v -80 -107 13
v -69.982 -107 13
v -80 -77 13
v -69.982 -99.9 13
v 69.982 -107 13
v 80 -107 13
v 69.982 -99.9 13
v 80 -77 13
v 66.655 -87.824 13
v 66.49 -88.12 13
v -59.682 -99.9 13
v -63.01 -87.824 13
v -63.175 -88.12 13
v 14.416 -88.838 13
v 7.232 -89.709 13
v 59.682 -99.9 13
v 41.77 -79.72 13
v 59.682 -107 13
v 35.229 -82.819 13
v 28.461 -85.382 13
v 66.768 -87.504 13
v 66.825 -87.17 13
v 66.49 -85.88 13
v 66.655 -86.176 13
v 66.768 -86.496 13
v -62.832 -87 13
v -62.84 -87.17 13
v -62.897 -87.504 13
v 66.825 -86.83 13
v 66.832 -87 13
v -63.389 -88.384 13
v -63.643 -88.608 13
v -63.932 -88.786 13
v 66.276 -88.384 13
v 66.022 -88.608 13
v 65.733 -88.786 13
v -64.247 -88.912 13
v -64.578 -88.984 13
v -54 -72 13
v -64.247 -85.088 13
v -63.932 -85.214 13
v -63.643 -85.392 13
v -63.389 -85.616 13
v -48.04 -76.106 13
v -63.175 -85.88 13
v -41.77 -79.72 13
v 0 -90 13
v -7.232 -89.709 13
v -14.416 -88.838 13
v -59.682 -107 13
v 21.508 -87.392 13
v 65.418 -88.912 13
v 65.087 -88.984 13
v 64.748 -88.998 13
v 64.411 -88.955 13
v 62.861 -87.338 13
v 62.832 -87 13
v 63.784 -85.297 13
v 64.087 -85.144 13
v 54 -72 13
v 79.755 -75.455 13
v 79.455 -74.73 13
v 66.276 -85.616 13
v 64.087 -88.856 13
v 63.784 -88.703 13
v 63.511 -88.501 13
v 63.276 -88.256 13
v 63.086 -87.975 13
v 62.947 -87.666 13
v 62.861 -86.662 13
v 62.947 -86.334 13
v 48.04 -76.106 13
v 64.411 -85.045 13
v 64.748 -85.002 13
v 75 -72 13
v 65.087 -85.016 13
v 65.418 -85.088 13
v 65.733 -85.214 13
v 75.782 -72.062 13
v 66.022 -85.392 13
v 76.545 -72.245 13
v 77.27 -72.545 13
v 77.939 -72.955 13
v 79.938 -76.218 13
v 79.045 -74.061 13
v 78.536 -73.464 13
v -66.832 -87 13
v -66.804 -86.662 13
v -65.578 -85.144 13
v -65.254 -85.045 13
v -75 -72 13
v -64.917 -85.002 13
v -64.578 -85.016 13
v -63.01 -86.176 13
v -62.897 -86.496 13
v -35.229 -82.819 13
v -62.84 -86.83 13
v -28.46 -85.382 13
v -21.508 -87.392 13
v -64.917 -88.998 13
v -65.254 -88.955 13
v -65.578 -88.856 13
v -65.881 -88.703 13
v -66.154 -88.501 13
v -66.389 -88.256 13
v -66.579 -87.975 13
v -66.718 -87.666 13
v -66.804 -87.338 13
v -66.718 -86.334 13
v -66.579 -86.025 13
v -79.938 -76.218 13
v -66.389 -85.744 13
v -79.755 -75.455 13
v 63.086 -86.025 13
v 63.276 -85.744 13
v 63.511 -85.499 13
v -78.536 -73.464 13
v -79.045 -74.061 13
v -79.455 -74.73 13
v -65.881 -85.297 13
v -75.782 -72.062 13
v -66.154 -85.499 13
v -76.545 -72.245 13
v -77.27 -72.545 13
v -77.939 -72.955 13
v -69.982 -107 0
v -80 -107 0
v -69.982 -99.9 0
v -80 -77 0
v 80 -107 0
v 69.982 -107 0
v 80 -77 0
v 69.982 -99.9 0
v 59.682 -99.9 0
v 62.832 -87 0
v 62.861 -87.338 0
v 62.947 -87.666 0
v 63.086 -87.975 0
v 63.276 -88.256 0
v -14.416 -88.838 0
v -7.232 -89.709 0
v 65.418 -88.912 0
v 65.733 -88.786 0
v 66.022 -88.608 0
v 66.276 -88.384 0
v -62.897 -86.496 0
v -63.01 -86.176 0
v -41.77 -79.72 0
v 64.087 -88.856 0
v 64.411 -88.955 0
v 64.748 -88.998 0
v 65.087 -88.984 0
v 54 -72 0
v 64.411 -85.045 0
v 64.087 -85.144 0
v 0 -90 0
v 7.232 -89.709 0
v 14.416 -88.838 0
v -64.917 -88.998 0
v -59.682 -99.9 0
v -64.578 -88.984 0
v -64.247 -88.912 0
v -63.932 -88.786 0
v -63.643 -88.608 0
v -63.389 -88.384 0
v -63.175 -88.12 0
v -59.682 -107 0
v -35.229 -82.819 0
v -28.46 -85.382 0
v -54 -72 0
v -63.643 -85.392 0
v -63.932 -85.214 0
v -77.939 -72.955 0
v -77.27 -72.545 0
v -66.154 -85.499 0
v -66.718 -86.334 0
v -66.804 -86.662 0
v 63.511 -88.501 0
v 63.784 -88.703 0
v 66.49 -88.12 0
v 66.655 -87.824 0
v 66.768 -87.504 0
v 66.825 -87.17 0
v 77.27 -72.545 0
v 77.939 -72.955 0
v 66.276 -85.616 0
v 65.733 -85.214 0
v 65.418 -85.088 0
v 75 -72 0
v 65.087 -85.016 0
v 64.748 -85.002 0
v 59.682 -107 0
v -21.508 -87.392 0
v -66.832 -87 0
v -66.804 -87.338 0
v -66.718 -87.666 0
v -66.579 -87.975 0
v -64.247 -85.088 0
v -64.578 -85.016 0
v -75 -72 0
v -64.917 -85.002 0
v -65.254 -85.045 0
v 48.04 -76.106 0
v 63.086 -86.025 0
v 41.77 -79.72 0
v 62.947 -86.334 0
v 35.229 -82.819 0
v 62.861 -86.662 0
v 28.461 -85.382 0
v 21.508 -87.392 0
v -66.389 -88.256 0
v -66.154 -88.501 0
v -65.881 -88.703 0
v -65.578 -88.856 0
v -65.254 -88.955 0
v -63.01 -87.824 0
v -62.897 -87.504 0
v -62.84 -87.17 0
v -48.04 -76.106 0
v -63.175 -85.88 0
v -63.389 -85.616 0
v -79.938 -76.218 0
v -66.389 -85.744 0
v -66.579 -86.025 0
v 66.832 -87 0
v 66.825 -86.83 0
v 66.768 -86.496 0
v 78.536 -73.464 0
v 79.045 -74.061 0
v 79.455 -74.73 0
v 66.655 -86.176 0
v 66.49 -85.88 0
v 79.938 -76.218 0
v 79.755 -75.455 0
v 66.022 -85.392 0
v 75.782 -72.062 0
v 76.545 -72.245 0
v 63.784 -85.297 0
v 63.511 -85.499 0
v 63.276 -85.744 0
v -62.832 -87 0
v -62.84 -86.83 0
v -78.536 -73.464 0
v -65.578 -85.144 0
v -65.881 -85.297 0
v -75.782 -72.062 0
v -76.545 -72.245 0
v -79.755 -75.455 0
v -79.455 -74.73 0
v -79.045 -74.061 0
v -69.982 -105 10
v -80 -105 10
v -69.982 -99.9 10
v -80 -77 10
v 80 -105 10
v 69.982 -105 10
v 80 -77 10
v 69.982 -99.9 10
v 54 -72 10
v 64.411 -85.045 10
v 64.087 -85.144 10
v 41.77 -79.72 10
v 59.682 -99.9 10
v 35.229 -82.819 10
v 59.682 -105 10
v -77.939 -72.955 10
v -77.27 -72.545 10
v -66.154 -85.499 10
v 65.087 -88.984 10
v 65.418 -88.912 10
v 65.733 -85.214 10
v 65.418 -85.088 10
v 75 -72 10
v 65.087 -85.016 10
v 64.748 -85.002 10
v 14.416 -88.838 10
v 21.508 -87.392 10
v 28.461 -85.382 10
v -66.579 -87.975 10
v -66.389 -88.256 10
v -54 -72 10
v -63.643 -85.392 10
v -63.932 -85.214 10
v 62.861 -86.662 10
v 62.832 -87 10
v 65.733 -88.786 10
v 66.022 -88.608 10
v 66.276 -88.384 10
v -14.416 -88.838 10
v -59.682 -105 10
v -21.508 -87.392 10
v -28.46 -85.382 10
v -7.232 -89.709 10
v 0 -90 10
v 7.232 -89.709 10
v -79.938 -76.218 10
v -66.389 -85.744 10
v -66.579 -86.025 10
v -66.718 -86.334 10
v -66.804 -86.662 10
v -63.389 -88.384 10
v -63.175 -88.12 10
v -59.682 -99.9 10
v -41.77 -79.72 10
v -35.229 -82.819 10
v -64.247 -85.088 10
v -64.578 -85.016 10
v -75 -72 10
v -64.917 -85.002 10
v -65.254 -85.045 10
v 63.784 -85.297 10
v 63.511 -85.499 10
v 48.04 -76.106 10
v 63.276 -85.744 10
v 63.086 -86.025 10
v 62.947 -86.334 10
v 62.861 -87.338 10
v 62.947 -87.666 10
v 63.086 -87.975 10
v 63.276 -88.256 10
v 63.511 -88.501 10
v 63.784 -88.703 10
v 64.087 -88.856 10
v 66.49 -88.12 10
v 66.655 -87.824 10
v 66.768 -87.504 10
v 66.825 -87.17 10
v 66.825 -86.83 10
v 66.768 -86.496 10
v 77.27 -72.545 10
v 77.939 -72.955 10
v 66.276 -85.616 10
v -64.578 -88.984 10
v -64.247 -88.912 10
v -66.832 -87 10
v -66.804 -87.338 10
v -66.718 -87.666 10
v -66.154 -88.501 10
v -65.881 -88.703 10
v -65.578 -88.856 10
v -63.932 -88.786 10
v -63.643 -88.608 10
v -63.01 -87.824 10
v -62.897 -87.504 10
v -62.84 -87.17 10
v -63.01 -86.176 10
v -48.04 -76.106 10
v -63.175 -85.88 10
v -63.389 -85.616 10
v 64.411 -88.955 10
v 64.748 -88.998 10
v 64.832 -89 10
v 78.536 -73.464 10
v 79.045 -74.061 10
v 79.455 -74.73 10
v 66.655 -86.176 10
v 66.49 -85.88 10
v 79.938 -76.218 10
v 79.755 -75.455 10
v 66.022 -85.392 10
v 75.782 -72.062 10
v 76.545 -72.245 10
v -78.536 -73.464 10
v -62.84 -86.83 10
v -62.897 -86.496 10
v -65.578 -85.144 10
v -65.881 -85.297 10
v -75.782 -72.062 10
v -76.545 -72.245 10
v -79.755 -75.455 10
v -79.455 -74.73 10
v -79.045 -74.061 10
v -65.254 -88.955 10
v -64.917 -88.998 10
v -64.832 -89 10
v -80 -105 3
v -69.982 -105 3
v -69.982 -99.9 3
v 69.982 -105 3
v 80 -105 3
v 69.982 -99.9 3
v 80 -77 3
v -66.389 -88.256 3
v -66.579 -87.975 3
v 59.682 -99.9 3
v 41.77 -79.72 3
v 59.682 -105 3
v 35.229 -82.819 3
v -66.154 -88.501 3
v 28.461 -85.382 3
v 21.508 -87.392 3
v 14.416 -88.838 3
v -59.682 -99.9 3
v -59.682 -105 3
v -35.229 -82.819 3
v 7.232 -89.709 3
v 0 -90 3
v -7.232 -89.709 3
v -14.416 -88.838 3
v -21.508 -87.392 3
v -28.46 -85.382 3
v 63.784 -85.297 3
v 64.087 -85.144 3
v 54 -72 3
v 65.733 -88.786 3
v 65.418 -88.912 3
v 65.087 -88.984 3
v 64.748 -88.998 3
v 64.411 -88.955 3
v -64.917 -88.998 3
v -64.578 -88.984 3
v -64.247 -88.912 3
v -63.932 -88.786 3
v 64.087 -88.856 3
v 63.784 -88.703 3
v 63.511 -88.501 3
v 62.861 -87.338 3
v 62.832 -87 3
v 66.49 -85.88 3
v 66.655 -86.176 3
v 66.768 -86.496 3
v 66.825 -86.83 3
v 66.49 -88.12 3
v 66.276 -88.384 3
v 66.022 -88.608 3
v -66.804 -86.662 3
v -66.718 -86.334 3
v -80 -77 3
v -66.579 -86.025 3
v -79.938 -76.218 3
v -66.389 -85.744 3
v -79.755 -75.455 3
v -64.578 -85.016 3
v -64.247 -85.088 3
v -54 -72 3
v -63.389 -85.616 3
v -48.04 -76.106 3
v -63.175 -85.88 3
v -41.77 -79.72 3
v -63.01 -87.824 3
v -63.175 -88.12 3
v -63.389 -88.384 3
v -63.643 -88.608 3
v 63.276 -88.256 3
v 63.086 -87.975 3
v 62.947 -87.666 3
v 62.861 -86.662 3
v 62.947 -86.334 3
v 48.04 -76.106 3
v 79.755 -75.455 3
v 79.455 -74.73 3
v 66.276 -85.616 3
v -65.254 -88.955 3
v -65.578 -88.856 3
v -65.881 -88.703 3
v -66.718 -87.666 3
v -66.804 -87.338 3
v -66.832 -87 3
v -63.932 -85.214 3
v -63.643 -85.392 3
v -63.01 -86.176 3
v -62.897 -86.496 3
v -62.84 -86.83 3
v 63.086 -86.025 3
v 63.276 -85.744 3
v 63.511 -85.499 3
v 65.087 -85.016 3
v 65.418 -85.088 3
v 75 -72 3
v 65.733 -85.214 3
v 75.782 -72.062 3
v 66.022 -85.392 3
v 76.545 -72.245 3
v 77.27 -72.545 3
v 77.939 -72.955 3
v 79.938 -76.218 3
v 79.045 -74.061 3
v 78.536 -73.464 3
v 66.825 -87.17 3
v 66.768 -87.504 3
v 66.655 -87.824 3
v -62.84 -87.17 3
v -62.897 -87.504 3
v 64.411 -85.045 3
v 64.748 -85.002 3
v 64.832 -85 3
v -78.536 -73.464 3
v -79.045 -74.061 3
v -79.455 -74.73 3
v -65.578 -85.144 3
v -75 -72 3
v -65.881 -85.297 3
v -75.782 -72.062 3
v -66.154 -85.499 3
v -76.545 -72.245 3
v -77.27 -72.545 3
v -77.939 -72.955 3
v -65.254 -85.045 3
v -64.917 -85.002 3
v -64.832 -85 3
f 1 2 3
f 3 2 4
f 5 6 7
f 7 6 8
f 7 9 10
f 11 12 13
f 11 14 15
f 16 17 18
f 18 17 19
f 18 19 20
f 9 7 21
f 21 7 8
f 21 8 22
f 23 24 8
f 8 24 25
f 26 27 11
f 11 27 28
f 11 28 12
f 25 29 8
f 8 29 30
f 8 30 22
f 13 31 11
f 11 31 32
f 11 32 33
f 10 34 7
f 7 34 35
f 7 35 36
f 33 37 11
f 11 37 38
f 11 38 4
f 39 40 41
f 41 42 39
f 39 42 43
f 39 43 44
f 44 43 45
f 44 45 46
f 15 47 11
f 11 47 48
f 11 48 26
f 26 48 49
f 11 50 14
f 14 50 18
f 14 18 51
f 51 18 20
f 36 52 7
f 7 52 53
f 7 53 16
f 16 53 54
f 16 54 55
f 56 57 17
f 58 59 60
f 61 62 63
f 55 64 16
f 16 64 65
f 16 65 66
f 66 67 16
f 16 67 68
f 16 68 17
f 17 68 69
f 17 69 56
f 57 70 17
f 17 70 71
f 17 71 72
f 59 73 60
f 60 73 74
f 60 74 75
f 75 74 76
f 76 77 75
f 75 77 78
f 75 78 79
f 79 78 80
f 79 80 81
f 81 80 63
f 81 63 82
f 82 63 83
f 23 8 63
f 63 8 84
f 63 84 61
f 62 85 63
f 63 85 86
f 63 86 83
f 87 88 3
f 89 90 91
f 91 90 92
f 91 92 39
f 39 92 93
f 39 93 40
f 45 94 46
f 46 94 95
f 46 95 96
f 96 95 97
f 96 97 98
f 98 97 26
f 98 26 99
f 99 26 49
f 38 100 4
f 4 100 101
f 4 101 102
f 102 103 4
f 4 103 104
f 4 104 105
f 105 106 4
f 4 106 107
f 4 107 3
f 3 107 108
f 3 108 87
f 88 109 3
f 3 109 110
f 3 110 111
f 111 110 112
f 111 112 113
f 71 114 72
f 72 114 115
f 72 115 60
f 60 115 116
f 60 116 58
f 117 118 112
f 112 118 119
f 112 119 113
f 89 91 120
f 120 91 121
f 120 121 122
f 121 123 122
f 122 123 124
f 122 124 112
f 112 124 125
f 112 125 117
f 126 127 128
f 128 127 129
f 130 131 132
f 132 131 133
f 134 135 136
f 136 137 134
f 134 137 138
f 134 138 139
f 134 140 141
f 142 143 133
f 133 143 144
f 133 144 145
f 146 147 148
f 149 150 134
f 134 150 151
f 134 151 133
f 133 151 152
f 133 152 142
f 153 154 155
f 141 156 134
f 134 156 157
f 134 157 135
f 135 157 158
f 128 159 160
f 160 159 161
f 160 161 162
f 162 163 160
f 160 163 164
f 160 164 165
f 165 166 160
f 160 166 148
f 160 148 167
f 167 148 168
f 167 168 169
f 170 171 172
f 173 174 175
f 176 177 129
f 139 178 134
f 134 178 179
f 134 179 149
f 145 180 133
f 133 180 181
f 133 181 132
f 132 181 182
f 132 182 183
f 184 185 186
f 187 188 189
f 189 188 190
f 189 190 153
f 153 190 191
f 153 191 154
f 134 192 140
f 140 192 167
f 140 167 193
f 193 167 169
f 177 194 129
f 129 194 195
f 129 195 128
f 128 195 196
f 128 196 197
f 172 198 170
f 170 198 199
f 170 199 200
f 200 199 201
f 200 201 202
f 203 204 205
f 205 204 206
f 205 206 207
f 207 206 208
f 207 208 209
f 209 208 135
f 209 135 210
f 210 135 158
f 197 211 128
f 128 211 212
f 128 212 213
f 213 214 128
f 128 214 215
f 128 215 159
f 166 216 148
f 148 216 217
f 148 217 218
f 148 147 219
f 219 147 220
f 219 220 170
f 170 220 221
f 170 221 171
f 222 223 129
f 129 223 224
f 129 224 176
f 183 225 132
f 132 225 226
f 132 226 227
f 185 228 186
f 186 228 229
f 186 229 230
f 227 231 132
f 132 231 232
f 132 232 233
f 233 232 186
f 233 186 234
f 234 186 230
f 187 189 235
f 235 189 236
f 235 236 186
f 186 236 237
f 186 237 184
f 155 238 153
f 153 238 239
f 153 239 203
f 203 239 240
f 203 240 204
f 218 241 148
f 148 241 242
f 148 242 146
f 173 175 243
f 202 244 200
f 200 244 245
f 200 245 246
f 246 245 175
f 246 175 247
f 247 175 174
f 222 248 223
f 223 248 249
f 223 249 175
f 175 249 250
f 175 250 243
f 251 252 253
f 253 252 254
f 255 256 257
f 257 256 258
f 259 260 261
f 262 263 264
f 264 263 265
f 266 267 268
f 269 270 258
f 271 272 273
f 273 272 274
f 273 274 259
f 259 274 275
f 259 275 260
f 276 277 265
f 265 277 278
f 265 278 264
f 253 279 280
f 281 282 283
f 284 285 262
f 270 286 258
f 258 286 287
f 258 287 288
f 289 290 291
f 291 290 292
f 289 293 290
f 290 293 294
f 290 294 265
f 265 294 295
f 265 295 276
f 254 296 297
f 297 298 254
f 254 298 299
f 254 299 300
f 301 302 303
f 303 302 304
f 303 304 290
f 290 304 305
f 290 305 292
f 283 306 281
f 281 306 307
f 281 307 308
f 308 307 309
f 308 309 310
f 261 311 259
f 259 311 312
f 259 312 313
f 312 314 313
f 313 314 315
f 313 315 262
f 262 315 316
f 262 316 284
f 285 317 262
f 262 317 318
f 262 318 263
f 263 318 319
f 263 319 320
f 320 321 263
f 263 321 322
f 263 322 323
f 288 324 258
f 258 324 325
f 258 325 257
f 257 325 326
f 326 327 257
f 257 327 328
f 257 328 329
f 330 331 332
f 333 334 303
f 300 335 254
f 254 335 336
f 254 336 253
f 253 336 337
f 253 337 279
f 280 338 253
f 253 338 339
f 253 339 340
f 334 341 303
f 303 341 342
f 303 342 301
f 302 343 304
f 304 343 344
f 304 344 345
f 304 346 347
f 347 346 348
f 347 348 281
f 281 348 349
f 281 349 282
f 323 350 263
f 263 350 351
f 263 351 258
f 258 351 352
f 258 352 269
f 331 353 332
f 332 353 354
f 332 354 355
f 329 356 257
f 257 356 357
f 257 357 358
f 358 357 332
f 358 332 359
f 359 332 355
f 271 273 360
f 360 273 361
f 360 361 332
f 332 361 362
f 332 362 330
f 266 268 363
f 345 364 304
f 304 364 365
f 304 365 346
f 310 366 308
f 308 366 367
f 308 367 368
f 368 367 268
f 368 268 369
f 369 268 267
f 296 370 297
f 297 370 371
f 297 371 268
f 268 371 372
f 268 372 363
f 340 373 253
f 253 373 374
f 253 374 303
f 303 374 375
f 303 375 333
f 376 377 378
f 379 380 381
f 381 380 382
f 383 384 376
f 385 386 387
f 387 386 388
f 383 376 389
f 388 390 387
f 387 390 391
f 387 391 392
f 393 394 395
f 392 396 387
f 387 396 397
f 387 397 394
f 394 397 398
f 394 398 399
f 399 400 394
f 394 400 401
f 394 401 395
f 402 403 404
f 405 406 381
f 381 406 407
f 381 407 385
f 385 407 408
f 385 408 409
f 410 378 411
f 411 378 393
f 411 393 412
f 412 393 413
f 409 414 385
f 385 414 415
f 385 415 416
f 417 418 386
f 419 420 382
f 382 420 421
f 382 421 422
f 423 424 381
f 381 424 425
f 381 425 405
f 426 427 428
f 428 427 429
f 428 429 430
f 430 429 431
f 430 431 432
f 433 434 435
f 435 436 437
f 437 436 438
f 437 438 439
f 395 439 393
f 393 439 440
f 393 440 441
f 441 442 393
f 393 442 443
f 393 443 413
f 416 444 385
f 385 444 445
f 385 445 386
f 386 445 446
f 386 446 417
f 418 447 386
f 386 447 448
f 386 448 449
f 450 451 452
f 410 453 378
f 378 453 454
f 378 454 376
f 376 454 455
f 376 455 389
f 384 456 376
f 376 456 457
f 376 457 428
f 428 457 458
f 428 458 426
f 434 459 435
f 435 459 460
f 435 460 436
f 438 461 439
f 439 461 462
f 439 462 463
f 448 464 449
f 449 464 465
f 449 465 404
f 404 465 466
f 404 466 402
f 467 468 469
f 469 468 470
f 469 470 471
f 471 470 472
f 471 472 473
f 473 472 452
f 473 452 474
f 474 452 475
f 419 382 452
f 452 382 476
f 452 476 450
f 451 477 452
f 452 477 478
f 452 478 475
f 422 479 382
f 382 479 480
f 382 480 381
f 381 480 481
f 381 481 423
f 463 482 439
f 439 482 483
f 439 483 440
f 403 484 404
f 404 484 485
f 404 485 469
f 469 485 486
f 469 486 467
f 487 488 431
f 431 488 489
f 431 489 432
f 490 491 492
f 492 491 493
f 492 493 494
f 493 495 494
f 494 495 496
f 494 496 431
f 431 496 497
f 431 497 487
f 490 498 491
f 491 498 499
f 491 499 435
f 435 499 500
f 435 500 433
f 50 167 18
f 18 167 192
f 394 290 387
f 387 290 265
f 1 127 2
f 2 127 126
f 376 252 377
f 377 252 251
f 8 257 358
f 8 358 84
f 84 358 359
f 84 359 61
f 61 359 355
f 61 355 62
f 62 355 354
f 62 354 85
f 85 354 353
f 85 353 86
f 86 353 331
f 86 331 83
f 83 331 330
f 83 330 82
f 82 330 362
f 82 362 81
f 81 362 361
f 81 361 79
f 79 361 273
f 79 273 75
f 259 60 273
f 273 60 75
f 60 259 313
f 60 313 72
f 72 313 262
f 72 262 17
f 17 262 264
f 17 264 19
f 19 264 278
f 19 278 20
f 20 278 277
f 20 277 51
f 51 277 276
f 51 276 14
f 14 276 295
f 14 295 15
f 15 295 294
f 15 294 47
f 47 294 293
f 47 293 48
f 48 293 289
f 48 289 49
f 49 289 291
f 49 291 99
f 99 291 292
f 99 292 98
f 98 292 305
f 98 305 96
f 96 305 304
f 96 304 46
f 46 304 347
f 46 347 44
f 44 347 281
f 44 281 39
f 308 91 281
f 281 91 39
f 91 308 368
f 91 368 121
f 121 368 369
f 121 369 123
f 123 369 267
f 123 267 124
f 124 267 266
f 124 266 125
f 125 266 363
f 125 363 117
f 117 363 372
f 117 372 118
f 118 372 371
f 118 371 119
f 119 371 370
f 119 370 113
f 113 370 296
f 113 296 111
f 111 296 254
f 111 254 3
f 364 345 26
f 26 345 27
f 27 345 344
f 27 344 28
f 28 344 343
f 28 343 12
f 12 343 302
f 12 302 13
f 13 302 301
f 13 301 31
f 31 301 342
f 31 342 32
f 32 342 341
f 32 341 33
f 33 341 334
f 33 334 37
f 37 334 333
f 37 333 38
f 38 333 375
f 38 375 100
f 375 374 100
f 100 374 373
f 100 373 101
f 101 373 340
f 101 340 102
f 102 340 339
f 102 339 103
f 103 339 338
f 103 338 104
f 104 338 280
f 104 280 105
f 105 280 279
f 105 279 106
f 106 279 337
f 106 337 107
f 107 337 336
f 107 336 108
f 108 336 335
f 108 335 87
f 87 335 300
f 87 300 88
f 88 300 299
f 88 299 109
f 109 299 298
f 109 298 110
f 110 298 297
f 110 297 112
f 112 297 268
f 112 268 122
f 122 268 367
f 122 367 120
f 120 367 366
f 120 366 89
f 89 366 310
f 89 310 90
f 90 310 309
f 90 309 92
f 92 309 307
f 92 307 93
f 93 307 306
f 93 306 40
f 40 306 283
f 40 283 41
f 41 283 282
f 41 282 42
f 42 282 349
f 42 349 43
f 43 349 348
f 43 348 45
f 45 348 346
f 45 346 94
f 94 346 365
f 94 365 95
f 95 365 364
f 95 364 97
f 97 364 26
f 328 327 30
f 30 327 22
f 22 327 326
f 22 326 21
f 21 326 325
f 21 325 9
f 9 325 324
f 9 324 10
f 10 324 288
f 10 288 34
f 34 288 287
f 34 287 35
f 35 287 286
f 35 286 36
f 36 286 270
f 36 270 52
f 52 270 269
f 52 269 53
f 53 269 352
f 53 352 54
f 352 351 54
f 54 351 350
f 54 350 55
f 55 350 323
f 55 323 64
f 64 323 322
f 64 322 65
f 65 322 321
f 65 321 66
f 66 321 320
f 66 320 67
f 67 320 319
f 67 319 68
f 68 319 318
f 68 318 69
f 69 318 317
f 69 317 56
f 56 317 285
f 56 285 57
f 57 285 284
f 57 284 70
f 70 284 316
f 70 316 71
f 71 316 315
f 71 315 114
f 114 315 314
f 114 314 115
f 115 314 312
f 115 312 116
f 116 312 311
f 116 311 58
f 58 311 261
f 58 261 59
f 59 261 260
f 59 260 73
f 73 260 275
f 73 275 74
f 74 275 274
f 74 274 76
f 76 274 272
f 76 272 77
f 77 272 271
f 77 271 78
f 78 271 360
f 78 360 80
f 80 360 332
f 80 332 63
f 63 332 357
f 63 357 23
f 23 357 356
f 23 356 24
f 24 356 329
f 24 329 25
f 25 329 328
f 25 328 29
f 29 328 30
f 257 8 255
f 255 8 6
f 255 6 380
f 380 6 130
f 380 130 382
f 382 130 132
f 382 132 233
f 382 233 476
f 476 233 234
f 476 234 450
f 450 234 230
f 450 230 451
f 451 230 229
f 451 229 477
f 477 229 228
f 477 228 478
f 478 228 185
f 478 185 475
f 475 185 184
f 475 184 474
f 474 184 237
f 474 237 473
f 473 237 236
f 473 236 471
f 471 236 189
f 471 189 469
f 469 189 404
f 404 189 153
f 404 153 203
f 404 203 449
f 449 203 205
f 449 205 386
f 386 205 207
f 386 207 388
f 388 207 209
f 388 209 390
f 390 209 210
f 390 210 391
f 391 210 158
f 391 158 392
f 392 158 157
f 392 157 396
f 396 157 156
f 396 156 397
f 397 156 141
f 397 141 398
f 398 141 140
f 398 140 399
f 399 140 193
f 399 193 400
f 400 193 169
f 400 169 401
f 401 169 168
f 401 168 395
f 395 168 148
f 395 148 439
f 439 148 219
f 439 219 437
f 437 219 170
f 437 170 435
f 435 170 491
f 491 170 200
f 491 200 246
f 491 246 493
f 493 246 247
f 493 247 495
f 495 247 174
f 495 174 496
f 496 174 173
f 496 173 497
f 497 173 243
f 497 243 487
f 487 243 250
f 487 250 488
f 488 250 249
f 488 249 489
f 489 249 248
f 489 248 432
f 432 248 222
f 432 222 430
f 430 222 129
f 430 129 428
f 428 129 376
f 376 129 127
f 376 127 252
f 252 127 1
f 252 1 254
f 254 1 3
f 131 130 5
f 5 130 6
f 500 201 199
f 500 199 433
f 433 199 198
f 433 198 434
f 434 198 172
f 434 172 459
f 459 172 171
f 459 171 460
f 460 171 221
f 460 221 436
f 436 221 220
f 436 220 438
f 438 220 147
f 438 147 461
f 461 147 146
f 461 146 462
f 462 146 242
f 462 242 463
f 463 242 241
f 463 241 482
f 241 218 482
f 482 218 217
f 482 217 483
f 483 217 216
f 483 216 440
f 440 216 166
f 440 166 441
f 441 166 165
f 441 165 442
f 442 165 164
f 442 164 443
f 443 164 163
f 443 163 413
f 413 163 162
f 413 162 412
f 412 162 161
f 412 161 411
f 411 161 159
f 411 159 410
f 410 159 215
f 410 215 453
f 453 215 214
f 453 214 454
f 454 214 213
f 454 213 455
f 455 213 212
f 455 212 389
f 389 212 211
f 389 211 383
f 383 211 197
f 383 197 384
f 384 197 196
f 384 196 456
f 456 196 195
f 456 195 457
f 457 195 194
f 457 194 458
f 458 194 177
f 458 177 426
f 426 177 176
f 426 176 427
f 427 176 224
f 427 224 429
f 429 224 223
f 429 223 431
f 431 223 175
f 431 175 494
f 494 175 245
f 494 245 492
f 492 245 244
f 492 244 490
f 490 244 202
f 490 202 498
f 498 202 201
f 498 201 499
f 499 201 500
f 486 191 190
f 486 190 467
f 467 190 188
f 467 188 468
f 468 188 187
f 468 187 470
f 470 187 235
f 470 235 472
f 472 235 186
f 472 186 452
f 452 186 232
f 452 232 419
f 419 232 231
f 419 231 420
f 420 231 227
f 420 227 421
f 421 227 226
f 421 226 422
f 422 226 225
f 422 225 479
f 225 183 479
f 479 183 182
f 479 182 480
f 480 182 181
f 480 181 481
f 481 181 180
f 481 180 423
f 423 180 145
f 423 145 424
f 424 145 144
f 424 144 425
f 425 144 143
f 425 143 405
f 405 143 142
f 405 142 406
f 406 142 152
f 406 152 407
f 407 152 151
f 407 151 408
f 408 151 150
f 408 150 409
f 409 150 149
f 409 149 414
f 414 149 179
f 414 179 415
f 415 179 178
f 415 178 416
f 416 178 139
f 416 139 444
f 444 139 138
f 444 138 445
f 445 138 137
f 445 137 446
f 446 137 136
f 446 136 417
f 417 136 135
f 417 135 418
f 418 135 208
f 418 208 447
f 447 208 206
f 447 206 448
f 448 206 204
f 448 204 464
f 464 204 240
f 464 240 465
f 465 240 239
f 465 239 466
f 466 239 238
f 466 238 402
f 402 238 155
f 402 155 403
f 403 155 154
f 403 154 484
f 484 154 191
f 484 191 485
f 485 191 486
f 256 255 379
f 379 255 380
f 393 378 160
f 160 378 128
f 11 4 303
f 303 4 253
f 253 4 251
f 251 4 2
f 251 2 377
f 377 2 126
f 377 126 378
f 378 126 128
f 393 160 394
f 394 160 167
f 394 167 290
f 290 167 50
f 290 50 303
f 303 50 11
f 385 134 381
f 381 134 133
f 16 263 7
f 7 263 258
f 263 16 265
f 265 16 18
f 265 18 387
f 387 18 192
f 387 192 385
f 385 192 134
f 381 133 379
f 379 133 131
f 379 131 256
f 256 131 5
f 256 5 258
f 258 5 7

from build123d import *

# Parameters (mm, degrees)
SKETCH_1_R          = 2
EXTRUDE_1_DEPTH     = 13
SKETCH_2_W          = 7
SKETCH_2_H          = 34.84138361
CUT_EXTRUDE_1_DEPTH = 193.919672403
SKETCH_3_W          = 10.3
SKETCH_3_H          = 7.1
CUT_EXTRUDE_2_DEPTH = 60


with BuildPart() as part:
    # 草图1 → 凸台-拉伸1 (new body)
    with BuildSketch(Plane.XY):
        with BuildLine():
            Line((54, -72), (75, -72))
            ThreePointArc((75, -72), (78.535533906, -73.464466094), (80, -77))
            Line((80, -77), (80, -107))
            Line((80, -107), (-80, -107))
            Line((-80, -107), (-80, -77))
            ThreePointArc((-80, -77), (-78.535533906, -73.464466094), (-75, -72))
            Line((-75, -72), (-54, -72))
            ThreePointArc((-54, -72), (0, -90), (54, -72))
        make_face()
        with Locations(Location((-64.83247643, -87, 0), (0, 0, 180))):
            Circle(SKETCH_1_R, mode=Mode.SUBTRACT)
        with Locations(Location((64.83247643, -87, 0), (0, 0, 180))):
            Circle(SKETCH_1_R, mode=Mode.SUBTRACT)
    extrude(amount=EXTRUDE_1_DEPTH)

    # 草图2 → 切除-拉伸1 (cut, through all)
    with BuildSketch(Plane(origin=(80, 0, 0), x_dir=(0, 0, -1), z_dir=(1, 0, 0))):
        with Locations((-6.5, -87.579308195)):
            Rectangle(SKETCH_2_W, SKETCH_2_H)
    extrude(amount=-CUT_EXTRUDE_1_DEPTH, mode=Mode.SUBTRACT)

    # 草图3 → 切除-拉伸2 (cut)
    with BuildSketch(Plane.XY.offset(13)):
        with Locations((-64.83247643, -103.45)):
            Rectangle(SKETCH_3_W, SKETCH_3_H)
        with Locations((64.83247643, -103.45)):
            Rectangle(SKETCH_3_W, SKETCH_3_H)
    extrude(amount=-CUT_EXTRUDE_2_DEPTH, mode=Mode.SUBTRACT)


solid = part.part
